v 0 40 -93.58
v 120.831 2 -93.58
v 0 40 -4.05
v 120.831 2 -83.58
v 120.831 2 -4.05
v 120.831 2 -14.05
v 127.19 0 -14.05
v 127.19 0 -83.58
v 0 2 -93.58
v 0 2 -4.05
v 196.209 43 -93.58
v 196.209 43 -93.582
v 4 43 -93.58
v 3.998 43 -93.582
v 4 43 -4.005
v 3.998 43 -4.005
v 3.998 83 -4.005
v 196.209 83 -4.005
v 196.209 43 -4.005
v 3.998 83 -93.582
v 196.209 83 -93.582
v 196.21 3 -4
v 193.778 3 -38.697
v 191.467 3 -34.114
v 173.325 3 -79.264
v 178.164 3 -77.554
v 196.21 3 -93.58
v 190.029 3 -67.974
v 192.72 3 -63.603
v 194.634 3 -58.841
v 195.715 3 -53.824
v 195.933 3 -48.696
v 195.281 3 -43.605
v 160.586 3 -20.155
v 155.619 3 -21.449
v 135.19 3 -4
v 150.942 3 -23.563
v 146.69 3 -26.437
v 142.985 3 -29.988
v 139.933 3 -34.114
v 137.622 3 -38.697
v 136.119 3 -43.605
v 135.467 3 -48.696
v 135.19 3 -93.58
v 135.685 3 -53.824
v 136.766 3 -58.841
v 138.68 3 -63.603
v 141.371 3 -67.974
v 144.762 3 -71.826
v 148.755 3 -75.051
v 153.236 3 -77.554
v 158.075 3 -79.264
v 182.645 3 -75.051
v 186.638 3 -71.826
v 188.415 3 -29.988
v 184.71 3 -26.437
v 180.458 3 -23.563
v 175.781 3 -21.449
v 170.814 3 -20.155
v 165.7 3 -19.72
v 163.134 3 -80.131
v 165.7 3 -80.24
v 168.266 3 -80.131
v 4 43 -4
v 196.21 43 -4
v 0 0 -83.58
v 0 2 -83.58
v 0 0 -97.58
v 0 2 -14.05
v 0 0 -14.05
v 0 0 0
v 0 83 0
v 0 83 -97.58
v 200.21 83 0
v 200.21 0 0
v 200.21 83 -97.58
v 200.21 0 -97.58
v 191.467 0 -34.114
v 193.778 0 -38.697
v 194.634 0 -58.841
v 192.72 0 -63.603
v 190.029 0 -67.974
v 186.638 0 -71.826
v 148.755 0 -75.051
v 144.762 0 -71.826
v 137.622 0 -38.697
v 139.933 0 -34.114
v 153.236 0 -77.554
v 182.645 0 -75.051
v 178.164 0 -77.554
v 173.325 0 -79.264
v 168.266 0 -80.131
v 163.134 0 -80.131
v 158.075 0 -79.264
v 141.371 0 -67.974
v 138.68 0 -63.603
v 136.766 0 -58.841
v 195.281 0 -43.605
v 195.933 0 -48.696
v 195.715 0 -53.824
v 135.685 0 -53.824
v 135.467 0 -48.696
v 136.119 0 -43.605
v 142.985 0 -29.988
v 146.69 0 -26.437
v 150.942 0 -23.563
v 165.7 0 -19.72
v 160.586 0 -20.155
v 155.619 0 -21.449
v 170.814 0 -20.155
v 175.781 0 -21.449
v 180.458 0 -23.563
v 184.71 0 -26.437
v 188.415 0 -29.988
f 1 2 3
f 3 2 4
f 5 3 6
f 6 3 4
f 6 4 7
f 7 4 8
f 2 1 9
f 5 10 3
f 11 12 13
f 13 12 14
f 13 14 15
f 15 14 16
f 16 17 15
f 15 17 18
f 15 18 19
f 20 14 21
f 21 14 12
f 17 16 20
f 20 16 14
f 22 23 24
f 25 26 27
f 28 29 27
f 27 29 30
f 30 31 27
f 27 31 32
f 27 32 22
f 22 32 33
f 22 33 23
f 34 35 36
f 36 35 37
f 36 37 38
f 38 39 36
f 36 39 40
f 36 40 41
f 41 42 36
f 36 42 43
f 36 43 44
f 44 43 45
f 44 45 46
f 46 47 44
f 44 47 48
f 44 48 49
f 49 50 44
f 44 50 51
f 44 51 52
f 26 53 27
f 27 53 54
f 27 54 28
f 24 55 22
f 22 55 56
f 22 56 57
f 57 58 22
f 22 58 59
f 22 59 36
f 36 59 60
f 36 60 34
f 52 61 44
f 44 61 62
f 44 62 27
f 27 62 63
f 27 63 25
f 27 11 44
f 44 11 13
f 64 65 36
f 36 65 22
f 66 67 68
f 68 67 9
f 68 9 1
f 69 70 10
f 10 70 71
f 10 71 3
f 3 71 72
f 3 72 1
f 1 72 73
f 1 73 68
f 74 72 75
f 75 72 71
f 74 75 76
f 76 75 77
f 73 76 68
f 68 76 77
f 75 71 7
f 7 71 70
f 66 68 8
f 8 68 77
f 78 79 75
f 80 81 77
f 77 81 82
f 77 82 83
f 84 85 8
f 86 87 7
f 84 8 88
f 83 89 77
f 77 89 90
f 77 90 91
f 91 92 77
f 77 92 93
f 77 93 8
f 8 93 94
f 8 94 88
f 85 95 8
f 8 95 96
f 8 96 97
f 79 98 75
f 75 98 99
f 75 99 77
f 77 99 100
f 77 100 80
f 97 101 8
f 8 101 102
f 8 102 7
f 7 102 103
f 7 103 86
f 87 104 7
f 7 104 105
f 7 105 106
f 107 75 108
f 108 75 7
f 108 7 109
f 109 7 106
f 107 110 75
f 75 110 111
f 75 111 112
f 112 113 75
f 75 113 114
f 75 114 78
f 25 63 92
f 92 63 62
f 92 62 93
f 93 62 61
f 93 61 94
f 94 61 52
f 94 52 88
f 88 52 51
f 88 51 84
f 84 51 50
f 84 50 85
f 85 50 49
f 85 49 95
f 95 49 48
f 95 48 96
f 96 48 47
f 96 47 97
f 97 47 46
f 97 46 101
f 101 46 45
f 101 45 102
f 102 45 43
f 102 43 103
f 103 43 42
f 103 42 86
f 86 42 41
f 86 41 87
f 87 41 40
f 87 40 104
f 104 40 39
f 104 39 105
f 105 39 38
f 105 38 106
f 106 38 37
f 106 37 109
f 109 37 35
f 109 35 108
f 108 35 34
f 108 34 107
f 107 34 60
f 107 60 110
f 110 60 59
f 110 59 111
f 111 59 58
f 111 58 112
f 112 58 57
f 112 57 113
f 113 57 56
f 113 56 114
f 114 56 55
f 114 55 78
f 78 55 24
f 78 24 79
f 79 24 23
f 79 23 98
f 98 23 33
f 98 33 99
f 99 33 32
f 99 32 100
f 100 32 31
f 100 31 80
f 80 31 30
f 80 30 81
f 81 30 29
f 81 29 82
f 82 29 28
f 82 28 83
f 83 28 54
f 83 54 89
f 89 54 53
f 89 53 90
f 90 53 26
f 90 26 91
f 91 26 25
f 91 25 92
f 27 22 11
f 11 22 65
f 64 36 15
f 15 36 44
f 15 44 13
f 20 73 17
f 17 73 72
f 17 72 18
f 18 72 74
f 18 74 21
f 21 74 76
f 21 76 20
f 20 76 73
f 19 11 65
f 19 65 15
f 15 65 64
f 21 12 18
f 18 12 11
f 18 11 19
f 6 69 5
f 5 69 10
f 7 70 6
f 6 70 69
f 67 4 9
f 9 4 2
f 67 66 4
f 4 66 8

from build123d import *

# Parameters (mm, degrees)
SKETCH1_W            = 200.21
SKETCH1_H            = 97.58
BOSS_EXTRUDE1_DEPTH  = 43
SKETCH2_R            = 30.26
CUT_EXTRUDE1_DEPTH   = 43
SKETCH3_W            = 61.02
SKETCH3_H            = 89.58
CUT_EXTRUDE4_DEPTH   = 40
SKETCH6_W            = 131.19
SKETCH6_H            = 89.58
CUT_EXTRUDE6_DEPTH   = 40
BOSS_EXTRUDE2_DEPTH  = 92
SKETCH10_W           = 200.21
SKETCH10_H           = 4.004947158
BOSS_EXTRUDE3_DEPTH  = 40
SKETCH11_W           = 3.997887423
SKETCH11_H           = 93.575052842
BOSS_EXTRUDE4_DEPTH  = 40
SKETCH14_W           = 198.22617176
SKETCH14_H           = 3.997974015
BOSS_EXTRUDE8_DEPTH  = 40
SKETCH15_W           = 4.000744024
SKETCH15_H           = 90.67582921
BOSS_EXTRUDE9_DEPTH  = 40
CUT_EXTRUDE7_DEPTH   = 93.53
SKETCH17_W           = 133.33152703
SKETCH17_H           = 4
BOSS_EXTRUDE10_DEPTH = 45
SKETCH18_W           = 19.990768927
SKETCH18_H           = 67.482432085
CUT_EXTRUDE8_DEPTH   = 45
SKETCH19_W           = 130.204698474
SKETCH19_H           = 63.111611145
CUT_EXTRUDE9_DEPTH   = 45
BOSS_EXTRUDE11_DEPTH = 10
BOSS_EXTRUDE12_DEPTH = 10


with BuildPart() as part:
    # Sketch1 → Boss-Extrude1 (new body)
    with BuildSketch(Plane(origin=(0, 0, 0), x_dir=(1, 0, 0), z_dir=(0, 1, 0))):
        with Locations((100.105, 48.79)):
            Rectangle(SKETCH1_W, SKETCH1_H)
    extrude(amount=BOSS_EXTRUDE1_DEPTH)

    # Sketch2 → Cut-Extrude1 (cut)
    with BuildSketch(Plane(origin=(0, 43, 0), x_dir=(1, 0, 0), z_dir=(0, 1, 0))):
        with Locations(Location((165.7, 49.98, 0), (0, 0, 270))):
            Circle(SKETCH2_R)
    extrude(amount=-CUT_EXTRUDE1_DEPTH, mode=Mode.SUBTRACT)

    # Sketch3 → Cut-Extrude4 (cut)
    with BuildSketch(Plane(origin=(0, 43, 0), x_dir=(1, 0, 0), z_dir=(0, 1, 0))):
        with Locations((165.7, 48.79)):
            Rectangle(SKETCH3_W, SKETCH3_H)
    extrude(amount=-CUT_EXTRUDE4_DEPTH, mode=Mode.SUBTRACT)

    # Sketch6 → Cut-Extrude6 (cut)
    with BuildSketch(Plane(origin=(0, 43, 0), x_dir=(1, 0, 0), z_dir=(0, 1, 0))):
        with Locations((69.595, 48.79)):
            Rectangle(SKETCH6_W, SKETCH6_H)
    extrude(amount=-CUT_EXTRUDE6_DEPTH, mode=Mode.SUBTRACT)

    # Sketch9 → Boss-Extrude2 (add)
    with BuildSketch(Plane.XY.offset(-93.58)):
        Polygon((4, 3), (135.19, 3), (4, 43), align=None)
    extrude(amount=BOSS_EXTRUDE2_DEPTH)

    # Sketch10 → Boss-Extrude3 (add)
    with BuildSketch(Plane(origin=(0, 43, 0), x_dir=(1, 0, 0), z_dir=(0, 1, 0))):
        with Locations((100.105, 2.002473579)):
            Rectangle(SKETCH10_W, SKETCH10_H)
    extrude(amount=BOSS_EXTRUDE3_DEPTH)

    # Sketch11 → Boss-Extrude4 (add)
    with BuildSketch(Plane(origin=(0, 43, 0), x_dir=(1, 0, 0), z_dir=(0, 1, 0))):
        with Locations((1.998943712, 50.792473579)):
            Rectangle(SKETCH11_W, SKETCH11_H)
    extrude(amount=BOSS_EXTRUDE4_DEPTH)

    # Sketch14 → Boss-Extrude8 (add)
    with BuildSketch(Plane(origin=(0, 43, 0), x_dir=(1, 0, 0), z_dir=(0, 1, 0))):
        with Locations((101.09691412, 95.581012993)):
            Rectangle(SKETCH14_W, SKETCH14_H)
    extrude(amount=BOSS_EXTRUDE8_DEPTH)

    # Sketch15 → Boss-Extrude9 (add)
    with BuildSketch(Plane(origin=(0, 43, 0), x_dir=(1, 0, 0), z_dir=(0, 1, 0))):
        with Locations((198.209627988, 49.342861763)):
            Rectangle(SKETCH15_W, SKETCH15_H)
    extrude(amount=BOSS_EXTRUDE9_DEPTH)

    # Sketch16 → Cut-Extrude7 (cut)
    with BuildSketch(Plane(origin=(0, 0, -97.58), x_dir=(-1, 0, 0), z_dir=(0, 0, -1))):
        Polygon((0, 0), (-127.19, 0), (0, 40), align=None)
    extrude(amount=-CUT_EXTRUDE7_DEPTH, mode=Mode.SUBTRACT)

    # Sketch17 → Boss-Extrude10 (add)
    with BuildSketch(Plane(origin=(11.44741016, 36.399902458, 0), x_dir=(0.9539379232634473, -0.30000406423883874, 0), z_dir=(-0.30000406423883874, -0.9539379232634474, 0))):
        with Locations((54.665600945, -95.58)):
            Rectangle(SKETCH17_W, SKETCH17_H)
    extrude(amount=BOSS_EXTRUDE10_DEPTH)

    # Sketch18 → Cut-Extrude8 (cut)
    with BuildSketch(Plane(origin=(0, 0, -97.58), x_dir=(-1, 0, 0), z_dir=(0, 0, -1))):
        with Locations((9.995384464, 19.727595476)):
            Rectangle(SKETCH18_W, SKETCH18_H)
    extrude(amount=-CUT_EXTRUDE8_DEPTH, mode=Mode.SUBTRACT)

    # Sketch19 → Cut-Extrude9 (cut)
    with BuildSketch(Plane(origin=(0, 0, -97.58), x_dir=(-1, 0, 0), z_dir=(0, 0, -1))):
        with Locations((-62.087650763, -31.555805573)):
            Rectangle(SKETCH19_W, SKETCH19_H)
    extrude(amount=-CUT_EXTRUDE9_DEPTH, mode=Mode.SUBTRACT)

    # Sketch20 → Boss-Extrude11 (add)
    with BuildSketch(Plane(origin=(0, 0, -4.05), x_dir=(-1, 0, 0), z_dir=(0, 0, -1))):
        Polygon((0, 0), (0, 2), (-120.8305, 2), (-127.19, 0), align=None)
    extrude(amount=BOSS_EXTRUDE11_DEPTH)

    # Sketch21 → Boss-Extrude12 (add)
    with BuildSketch(Plane.XY.offset(-93.58)):
        Polygon((0, 0), (0, 2), (120.8305, 2), (127.19, 0), align=None)
    extrude(amount=BOSS_EXTRUDE12_DEPTH)


solid = part.part
